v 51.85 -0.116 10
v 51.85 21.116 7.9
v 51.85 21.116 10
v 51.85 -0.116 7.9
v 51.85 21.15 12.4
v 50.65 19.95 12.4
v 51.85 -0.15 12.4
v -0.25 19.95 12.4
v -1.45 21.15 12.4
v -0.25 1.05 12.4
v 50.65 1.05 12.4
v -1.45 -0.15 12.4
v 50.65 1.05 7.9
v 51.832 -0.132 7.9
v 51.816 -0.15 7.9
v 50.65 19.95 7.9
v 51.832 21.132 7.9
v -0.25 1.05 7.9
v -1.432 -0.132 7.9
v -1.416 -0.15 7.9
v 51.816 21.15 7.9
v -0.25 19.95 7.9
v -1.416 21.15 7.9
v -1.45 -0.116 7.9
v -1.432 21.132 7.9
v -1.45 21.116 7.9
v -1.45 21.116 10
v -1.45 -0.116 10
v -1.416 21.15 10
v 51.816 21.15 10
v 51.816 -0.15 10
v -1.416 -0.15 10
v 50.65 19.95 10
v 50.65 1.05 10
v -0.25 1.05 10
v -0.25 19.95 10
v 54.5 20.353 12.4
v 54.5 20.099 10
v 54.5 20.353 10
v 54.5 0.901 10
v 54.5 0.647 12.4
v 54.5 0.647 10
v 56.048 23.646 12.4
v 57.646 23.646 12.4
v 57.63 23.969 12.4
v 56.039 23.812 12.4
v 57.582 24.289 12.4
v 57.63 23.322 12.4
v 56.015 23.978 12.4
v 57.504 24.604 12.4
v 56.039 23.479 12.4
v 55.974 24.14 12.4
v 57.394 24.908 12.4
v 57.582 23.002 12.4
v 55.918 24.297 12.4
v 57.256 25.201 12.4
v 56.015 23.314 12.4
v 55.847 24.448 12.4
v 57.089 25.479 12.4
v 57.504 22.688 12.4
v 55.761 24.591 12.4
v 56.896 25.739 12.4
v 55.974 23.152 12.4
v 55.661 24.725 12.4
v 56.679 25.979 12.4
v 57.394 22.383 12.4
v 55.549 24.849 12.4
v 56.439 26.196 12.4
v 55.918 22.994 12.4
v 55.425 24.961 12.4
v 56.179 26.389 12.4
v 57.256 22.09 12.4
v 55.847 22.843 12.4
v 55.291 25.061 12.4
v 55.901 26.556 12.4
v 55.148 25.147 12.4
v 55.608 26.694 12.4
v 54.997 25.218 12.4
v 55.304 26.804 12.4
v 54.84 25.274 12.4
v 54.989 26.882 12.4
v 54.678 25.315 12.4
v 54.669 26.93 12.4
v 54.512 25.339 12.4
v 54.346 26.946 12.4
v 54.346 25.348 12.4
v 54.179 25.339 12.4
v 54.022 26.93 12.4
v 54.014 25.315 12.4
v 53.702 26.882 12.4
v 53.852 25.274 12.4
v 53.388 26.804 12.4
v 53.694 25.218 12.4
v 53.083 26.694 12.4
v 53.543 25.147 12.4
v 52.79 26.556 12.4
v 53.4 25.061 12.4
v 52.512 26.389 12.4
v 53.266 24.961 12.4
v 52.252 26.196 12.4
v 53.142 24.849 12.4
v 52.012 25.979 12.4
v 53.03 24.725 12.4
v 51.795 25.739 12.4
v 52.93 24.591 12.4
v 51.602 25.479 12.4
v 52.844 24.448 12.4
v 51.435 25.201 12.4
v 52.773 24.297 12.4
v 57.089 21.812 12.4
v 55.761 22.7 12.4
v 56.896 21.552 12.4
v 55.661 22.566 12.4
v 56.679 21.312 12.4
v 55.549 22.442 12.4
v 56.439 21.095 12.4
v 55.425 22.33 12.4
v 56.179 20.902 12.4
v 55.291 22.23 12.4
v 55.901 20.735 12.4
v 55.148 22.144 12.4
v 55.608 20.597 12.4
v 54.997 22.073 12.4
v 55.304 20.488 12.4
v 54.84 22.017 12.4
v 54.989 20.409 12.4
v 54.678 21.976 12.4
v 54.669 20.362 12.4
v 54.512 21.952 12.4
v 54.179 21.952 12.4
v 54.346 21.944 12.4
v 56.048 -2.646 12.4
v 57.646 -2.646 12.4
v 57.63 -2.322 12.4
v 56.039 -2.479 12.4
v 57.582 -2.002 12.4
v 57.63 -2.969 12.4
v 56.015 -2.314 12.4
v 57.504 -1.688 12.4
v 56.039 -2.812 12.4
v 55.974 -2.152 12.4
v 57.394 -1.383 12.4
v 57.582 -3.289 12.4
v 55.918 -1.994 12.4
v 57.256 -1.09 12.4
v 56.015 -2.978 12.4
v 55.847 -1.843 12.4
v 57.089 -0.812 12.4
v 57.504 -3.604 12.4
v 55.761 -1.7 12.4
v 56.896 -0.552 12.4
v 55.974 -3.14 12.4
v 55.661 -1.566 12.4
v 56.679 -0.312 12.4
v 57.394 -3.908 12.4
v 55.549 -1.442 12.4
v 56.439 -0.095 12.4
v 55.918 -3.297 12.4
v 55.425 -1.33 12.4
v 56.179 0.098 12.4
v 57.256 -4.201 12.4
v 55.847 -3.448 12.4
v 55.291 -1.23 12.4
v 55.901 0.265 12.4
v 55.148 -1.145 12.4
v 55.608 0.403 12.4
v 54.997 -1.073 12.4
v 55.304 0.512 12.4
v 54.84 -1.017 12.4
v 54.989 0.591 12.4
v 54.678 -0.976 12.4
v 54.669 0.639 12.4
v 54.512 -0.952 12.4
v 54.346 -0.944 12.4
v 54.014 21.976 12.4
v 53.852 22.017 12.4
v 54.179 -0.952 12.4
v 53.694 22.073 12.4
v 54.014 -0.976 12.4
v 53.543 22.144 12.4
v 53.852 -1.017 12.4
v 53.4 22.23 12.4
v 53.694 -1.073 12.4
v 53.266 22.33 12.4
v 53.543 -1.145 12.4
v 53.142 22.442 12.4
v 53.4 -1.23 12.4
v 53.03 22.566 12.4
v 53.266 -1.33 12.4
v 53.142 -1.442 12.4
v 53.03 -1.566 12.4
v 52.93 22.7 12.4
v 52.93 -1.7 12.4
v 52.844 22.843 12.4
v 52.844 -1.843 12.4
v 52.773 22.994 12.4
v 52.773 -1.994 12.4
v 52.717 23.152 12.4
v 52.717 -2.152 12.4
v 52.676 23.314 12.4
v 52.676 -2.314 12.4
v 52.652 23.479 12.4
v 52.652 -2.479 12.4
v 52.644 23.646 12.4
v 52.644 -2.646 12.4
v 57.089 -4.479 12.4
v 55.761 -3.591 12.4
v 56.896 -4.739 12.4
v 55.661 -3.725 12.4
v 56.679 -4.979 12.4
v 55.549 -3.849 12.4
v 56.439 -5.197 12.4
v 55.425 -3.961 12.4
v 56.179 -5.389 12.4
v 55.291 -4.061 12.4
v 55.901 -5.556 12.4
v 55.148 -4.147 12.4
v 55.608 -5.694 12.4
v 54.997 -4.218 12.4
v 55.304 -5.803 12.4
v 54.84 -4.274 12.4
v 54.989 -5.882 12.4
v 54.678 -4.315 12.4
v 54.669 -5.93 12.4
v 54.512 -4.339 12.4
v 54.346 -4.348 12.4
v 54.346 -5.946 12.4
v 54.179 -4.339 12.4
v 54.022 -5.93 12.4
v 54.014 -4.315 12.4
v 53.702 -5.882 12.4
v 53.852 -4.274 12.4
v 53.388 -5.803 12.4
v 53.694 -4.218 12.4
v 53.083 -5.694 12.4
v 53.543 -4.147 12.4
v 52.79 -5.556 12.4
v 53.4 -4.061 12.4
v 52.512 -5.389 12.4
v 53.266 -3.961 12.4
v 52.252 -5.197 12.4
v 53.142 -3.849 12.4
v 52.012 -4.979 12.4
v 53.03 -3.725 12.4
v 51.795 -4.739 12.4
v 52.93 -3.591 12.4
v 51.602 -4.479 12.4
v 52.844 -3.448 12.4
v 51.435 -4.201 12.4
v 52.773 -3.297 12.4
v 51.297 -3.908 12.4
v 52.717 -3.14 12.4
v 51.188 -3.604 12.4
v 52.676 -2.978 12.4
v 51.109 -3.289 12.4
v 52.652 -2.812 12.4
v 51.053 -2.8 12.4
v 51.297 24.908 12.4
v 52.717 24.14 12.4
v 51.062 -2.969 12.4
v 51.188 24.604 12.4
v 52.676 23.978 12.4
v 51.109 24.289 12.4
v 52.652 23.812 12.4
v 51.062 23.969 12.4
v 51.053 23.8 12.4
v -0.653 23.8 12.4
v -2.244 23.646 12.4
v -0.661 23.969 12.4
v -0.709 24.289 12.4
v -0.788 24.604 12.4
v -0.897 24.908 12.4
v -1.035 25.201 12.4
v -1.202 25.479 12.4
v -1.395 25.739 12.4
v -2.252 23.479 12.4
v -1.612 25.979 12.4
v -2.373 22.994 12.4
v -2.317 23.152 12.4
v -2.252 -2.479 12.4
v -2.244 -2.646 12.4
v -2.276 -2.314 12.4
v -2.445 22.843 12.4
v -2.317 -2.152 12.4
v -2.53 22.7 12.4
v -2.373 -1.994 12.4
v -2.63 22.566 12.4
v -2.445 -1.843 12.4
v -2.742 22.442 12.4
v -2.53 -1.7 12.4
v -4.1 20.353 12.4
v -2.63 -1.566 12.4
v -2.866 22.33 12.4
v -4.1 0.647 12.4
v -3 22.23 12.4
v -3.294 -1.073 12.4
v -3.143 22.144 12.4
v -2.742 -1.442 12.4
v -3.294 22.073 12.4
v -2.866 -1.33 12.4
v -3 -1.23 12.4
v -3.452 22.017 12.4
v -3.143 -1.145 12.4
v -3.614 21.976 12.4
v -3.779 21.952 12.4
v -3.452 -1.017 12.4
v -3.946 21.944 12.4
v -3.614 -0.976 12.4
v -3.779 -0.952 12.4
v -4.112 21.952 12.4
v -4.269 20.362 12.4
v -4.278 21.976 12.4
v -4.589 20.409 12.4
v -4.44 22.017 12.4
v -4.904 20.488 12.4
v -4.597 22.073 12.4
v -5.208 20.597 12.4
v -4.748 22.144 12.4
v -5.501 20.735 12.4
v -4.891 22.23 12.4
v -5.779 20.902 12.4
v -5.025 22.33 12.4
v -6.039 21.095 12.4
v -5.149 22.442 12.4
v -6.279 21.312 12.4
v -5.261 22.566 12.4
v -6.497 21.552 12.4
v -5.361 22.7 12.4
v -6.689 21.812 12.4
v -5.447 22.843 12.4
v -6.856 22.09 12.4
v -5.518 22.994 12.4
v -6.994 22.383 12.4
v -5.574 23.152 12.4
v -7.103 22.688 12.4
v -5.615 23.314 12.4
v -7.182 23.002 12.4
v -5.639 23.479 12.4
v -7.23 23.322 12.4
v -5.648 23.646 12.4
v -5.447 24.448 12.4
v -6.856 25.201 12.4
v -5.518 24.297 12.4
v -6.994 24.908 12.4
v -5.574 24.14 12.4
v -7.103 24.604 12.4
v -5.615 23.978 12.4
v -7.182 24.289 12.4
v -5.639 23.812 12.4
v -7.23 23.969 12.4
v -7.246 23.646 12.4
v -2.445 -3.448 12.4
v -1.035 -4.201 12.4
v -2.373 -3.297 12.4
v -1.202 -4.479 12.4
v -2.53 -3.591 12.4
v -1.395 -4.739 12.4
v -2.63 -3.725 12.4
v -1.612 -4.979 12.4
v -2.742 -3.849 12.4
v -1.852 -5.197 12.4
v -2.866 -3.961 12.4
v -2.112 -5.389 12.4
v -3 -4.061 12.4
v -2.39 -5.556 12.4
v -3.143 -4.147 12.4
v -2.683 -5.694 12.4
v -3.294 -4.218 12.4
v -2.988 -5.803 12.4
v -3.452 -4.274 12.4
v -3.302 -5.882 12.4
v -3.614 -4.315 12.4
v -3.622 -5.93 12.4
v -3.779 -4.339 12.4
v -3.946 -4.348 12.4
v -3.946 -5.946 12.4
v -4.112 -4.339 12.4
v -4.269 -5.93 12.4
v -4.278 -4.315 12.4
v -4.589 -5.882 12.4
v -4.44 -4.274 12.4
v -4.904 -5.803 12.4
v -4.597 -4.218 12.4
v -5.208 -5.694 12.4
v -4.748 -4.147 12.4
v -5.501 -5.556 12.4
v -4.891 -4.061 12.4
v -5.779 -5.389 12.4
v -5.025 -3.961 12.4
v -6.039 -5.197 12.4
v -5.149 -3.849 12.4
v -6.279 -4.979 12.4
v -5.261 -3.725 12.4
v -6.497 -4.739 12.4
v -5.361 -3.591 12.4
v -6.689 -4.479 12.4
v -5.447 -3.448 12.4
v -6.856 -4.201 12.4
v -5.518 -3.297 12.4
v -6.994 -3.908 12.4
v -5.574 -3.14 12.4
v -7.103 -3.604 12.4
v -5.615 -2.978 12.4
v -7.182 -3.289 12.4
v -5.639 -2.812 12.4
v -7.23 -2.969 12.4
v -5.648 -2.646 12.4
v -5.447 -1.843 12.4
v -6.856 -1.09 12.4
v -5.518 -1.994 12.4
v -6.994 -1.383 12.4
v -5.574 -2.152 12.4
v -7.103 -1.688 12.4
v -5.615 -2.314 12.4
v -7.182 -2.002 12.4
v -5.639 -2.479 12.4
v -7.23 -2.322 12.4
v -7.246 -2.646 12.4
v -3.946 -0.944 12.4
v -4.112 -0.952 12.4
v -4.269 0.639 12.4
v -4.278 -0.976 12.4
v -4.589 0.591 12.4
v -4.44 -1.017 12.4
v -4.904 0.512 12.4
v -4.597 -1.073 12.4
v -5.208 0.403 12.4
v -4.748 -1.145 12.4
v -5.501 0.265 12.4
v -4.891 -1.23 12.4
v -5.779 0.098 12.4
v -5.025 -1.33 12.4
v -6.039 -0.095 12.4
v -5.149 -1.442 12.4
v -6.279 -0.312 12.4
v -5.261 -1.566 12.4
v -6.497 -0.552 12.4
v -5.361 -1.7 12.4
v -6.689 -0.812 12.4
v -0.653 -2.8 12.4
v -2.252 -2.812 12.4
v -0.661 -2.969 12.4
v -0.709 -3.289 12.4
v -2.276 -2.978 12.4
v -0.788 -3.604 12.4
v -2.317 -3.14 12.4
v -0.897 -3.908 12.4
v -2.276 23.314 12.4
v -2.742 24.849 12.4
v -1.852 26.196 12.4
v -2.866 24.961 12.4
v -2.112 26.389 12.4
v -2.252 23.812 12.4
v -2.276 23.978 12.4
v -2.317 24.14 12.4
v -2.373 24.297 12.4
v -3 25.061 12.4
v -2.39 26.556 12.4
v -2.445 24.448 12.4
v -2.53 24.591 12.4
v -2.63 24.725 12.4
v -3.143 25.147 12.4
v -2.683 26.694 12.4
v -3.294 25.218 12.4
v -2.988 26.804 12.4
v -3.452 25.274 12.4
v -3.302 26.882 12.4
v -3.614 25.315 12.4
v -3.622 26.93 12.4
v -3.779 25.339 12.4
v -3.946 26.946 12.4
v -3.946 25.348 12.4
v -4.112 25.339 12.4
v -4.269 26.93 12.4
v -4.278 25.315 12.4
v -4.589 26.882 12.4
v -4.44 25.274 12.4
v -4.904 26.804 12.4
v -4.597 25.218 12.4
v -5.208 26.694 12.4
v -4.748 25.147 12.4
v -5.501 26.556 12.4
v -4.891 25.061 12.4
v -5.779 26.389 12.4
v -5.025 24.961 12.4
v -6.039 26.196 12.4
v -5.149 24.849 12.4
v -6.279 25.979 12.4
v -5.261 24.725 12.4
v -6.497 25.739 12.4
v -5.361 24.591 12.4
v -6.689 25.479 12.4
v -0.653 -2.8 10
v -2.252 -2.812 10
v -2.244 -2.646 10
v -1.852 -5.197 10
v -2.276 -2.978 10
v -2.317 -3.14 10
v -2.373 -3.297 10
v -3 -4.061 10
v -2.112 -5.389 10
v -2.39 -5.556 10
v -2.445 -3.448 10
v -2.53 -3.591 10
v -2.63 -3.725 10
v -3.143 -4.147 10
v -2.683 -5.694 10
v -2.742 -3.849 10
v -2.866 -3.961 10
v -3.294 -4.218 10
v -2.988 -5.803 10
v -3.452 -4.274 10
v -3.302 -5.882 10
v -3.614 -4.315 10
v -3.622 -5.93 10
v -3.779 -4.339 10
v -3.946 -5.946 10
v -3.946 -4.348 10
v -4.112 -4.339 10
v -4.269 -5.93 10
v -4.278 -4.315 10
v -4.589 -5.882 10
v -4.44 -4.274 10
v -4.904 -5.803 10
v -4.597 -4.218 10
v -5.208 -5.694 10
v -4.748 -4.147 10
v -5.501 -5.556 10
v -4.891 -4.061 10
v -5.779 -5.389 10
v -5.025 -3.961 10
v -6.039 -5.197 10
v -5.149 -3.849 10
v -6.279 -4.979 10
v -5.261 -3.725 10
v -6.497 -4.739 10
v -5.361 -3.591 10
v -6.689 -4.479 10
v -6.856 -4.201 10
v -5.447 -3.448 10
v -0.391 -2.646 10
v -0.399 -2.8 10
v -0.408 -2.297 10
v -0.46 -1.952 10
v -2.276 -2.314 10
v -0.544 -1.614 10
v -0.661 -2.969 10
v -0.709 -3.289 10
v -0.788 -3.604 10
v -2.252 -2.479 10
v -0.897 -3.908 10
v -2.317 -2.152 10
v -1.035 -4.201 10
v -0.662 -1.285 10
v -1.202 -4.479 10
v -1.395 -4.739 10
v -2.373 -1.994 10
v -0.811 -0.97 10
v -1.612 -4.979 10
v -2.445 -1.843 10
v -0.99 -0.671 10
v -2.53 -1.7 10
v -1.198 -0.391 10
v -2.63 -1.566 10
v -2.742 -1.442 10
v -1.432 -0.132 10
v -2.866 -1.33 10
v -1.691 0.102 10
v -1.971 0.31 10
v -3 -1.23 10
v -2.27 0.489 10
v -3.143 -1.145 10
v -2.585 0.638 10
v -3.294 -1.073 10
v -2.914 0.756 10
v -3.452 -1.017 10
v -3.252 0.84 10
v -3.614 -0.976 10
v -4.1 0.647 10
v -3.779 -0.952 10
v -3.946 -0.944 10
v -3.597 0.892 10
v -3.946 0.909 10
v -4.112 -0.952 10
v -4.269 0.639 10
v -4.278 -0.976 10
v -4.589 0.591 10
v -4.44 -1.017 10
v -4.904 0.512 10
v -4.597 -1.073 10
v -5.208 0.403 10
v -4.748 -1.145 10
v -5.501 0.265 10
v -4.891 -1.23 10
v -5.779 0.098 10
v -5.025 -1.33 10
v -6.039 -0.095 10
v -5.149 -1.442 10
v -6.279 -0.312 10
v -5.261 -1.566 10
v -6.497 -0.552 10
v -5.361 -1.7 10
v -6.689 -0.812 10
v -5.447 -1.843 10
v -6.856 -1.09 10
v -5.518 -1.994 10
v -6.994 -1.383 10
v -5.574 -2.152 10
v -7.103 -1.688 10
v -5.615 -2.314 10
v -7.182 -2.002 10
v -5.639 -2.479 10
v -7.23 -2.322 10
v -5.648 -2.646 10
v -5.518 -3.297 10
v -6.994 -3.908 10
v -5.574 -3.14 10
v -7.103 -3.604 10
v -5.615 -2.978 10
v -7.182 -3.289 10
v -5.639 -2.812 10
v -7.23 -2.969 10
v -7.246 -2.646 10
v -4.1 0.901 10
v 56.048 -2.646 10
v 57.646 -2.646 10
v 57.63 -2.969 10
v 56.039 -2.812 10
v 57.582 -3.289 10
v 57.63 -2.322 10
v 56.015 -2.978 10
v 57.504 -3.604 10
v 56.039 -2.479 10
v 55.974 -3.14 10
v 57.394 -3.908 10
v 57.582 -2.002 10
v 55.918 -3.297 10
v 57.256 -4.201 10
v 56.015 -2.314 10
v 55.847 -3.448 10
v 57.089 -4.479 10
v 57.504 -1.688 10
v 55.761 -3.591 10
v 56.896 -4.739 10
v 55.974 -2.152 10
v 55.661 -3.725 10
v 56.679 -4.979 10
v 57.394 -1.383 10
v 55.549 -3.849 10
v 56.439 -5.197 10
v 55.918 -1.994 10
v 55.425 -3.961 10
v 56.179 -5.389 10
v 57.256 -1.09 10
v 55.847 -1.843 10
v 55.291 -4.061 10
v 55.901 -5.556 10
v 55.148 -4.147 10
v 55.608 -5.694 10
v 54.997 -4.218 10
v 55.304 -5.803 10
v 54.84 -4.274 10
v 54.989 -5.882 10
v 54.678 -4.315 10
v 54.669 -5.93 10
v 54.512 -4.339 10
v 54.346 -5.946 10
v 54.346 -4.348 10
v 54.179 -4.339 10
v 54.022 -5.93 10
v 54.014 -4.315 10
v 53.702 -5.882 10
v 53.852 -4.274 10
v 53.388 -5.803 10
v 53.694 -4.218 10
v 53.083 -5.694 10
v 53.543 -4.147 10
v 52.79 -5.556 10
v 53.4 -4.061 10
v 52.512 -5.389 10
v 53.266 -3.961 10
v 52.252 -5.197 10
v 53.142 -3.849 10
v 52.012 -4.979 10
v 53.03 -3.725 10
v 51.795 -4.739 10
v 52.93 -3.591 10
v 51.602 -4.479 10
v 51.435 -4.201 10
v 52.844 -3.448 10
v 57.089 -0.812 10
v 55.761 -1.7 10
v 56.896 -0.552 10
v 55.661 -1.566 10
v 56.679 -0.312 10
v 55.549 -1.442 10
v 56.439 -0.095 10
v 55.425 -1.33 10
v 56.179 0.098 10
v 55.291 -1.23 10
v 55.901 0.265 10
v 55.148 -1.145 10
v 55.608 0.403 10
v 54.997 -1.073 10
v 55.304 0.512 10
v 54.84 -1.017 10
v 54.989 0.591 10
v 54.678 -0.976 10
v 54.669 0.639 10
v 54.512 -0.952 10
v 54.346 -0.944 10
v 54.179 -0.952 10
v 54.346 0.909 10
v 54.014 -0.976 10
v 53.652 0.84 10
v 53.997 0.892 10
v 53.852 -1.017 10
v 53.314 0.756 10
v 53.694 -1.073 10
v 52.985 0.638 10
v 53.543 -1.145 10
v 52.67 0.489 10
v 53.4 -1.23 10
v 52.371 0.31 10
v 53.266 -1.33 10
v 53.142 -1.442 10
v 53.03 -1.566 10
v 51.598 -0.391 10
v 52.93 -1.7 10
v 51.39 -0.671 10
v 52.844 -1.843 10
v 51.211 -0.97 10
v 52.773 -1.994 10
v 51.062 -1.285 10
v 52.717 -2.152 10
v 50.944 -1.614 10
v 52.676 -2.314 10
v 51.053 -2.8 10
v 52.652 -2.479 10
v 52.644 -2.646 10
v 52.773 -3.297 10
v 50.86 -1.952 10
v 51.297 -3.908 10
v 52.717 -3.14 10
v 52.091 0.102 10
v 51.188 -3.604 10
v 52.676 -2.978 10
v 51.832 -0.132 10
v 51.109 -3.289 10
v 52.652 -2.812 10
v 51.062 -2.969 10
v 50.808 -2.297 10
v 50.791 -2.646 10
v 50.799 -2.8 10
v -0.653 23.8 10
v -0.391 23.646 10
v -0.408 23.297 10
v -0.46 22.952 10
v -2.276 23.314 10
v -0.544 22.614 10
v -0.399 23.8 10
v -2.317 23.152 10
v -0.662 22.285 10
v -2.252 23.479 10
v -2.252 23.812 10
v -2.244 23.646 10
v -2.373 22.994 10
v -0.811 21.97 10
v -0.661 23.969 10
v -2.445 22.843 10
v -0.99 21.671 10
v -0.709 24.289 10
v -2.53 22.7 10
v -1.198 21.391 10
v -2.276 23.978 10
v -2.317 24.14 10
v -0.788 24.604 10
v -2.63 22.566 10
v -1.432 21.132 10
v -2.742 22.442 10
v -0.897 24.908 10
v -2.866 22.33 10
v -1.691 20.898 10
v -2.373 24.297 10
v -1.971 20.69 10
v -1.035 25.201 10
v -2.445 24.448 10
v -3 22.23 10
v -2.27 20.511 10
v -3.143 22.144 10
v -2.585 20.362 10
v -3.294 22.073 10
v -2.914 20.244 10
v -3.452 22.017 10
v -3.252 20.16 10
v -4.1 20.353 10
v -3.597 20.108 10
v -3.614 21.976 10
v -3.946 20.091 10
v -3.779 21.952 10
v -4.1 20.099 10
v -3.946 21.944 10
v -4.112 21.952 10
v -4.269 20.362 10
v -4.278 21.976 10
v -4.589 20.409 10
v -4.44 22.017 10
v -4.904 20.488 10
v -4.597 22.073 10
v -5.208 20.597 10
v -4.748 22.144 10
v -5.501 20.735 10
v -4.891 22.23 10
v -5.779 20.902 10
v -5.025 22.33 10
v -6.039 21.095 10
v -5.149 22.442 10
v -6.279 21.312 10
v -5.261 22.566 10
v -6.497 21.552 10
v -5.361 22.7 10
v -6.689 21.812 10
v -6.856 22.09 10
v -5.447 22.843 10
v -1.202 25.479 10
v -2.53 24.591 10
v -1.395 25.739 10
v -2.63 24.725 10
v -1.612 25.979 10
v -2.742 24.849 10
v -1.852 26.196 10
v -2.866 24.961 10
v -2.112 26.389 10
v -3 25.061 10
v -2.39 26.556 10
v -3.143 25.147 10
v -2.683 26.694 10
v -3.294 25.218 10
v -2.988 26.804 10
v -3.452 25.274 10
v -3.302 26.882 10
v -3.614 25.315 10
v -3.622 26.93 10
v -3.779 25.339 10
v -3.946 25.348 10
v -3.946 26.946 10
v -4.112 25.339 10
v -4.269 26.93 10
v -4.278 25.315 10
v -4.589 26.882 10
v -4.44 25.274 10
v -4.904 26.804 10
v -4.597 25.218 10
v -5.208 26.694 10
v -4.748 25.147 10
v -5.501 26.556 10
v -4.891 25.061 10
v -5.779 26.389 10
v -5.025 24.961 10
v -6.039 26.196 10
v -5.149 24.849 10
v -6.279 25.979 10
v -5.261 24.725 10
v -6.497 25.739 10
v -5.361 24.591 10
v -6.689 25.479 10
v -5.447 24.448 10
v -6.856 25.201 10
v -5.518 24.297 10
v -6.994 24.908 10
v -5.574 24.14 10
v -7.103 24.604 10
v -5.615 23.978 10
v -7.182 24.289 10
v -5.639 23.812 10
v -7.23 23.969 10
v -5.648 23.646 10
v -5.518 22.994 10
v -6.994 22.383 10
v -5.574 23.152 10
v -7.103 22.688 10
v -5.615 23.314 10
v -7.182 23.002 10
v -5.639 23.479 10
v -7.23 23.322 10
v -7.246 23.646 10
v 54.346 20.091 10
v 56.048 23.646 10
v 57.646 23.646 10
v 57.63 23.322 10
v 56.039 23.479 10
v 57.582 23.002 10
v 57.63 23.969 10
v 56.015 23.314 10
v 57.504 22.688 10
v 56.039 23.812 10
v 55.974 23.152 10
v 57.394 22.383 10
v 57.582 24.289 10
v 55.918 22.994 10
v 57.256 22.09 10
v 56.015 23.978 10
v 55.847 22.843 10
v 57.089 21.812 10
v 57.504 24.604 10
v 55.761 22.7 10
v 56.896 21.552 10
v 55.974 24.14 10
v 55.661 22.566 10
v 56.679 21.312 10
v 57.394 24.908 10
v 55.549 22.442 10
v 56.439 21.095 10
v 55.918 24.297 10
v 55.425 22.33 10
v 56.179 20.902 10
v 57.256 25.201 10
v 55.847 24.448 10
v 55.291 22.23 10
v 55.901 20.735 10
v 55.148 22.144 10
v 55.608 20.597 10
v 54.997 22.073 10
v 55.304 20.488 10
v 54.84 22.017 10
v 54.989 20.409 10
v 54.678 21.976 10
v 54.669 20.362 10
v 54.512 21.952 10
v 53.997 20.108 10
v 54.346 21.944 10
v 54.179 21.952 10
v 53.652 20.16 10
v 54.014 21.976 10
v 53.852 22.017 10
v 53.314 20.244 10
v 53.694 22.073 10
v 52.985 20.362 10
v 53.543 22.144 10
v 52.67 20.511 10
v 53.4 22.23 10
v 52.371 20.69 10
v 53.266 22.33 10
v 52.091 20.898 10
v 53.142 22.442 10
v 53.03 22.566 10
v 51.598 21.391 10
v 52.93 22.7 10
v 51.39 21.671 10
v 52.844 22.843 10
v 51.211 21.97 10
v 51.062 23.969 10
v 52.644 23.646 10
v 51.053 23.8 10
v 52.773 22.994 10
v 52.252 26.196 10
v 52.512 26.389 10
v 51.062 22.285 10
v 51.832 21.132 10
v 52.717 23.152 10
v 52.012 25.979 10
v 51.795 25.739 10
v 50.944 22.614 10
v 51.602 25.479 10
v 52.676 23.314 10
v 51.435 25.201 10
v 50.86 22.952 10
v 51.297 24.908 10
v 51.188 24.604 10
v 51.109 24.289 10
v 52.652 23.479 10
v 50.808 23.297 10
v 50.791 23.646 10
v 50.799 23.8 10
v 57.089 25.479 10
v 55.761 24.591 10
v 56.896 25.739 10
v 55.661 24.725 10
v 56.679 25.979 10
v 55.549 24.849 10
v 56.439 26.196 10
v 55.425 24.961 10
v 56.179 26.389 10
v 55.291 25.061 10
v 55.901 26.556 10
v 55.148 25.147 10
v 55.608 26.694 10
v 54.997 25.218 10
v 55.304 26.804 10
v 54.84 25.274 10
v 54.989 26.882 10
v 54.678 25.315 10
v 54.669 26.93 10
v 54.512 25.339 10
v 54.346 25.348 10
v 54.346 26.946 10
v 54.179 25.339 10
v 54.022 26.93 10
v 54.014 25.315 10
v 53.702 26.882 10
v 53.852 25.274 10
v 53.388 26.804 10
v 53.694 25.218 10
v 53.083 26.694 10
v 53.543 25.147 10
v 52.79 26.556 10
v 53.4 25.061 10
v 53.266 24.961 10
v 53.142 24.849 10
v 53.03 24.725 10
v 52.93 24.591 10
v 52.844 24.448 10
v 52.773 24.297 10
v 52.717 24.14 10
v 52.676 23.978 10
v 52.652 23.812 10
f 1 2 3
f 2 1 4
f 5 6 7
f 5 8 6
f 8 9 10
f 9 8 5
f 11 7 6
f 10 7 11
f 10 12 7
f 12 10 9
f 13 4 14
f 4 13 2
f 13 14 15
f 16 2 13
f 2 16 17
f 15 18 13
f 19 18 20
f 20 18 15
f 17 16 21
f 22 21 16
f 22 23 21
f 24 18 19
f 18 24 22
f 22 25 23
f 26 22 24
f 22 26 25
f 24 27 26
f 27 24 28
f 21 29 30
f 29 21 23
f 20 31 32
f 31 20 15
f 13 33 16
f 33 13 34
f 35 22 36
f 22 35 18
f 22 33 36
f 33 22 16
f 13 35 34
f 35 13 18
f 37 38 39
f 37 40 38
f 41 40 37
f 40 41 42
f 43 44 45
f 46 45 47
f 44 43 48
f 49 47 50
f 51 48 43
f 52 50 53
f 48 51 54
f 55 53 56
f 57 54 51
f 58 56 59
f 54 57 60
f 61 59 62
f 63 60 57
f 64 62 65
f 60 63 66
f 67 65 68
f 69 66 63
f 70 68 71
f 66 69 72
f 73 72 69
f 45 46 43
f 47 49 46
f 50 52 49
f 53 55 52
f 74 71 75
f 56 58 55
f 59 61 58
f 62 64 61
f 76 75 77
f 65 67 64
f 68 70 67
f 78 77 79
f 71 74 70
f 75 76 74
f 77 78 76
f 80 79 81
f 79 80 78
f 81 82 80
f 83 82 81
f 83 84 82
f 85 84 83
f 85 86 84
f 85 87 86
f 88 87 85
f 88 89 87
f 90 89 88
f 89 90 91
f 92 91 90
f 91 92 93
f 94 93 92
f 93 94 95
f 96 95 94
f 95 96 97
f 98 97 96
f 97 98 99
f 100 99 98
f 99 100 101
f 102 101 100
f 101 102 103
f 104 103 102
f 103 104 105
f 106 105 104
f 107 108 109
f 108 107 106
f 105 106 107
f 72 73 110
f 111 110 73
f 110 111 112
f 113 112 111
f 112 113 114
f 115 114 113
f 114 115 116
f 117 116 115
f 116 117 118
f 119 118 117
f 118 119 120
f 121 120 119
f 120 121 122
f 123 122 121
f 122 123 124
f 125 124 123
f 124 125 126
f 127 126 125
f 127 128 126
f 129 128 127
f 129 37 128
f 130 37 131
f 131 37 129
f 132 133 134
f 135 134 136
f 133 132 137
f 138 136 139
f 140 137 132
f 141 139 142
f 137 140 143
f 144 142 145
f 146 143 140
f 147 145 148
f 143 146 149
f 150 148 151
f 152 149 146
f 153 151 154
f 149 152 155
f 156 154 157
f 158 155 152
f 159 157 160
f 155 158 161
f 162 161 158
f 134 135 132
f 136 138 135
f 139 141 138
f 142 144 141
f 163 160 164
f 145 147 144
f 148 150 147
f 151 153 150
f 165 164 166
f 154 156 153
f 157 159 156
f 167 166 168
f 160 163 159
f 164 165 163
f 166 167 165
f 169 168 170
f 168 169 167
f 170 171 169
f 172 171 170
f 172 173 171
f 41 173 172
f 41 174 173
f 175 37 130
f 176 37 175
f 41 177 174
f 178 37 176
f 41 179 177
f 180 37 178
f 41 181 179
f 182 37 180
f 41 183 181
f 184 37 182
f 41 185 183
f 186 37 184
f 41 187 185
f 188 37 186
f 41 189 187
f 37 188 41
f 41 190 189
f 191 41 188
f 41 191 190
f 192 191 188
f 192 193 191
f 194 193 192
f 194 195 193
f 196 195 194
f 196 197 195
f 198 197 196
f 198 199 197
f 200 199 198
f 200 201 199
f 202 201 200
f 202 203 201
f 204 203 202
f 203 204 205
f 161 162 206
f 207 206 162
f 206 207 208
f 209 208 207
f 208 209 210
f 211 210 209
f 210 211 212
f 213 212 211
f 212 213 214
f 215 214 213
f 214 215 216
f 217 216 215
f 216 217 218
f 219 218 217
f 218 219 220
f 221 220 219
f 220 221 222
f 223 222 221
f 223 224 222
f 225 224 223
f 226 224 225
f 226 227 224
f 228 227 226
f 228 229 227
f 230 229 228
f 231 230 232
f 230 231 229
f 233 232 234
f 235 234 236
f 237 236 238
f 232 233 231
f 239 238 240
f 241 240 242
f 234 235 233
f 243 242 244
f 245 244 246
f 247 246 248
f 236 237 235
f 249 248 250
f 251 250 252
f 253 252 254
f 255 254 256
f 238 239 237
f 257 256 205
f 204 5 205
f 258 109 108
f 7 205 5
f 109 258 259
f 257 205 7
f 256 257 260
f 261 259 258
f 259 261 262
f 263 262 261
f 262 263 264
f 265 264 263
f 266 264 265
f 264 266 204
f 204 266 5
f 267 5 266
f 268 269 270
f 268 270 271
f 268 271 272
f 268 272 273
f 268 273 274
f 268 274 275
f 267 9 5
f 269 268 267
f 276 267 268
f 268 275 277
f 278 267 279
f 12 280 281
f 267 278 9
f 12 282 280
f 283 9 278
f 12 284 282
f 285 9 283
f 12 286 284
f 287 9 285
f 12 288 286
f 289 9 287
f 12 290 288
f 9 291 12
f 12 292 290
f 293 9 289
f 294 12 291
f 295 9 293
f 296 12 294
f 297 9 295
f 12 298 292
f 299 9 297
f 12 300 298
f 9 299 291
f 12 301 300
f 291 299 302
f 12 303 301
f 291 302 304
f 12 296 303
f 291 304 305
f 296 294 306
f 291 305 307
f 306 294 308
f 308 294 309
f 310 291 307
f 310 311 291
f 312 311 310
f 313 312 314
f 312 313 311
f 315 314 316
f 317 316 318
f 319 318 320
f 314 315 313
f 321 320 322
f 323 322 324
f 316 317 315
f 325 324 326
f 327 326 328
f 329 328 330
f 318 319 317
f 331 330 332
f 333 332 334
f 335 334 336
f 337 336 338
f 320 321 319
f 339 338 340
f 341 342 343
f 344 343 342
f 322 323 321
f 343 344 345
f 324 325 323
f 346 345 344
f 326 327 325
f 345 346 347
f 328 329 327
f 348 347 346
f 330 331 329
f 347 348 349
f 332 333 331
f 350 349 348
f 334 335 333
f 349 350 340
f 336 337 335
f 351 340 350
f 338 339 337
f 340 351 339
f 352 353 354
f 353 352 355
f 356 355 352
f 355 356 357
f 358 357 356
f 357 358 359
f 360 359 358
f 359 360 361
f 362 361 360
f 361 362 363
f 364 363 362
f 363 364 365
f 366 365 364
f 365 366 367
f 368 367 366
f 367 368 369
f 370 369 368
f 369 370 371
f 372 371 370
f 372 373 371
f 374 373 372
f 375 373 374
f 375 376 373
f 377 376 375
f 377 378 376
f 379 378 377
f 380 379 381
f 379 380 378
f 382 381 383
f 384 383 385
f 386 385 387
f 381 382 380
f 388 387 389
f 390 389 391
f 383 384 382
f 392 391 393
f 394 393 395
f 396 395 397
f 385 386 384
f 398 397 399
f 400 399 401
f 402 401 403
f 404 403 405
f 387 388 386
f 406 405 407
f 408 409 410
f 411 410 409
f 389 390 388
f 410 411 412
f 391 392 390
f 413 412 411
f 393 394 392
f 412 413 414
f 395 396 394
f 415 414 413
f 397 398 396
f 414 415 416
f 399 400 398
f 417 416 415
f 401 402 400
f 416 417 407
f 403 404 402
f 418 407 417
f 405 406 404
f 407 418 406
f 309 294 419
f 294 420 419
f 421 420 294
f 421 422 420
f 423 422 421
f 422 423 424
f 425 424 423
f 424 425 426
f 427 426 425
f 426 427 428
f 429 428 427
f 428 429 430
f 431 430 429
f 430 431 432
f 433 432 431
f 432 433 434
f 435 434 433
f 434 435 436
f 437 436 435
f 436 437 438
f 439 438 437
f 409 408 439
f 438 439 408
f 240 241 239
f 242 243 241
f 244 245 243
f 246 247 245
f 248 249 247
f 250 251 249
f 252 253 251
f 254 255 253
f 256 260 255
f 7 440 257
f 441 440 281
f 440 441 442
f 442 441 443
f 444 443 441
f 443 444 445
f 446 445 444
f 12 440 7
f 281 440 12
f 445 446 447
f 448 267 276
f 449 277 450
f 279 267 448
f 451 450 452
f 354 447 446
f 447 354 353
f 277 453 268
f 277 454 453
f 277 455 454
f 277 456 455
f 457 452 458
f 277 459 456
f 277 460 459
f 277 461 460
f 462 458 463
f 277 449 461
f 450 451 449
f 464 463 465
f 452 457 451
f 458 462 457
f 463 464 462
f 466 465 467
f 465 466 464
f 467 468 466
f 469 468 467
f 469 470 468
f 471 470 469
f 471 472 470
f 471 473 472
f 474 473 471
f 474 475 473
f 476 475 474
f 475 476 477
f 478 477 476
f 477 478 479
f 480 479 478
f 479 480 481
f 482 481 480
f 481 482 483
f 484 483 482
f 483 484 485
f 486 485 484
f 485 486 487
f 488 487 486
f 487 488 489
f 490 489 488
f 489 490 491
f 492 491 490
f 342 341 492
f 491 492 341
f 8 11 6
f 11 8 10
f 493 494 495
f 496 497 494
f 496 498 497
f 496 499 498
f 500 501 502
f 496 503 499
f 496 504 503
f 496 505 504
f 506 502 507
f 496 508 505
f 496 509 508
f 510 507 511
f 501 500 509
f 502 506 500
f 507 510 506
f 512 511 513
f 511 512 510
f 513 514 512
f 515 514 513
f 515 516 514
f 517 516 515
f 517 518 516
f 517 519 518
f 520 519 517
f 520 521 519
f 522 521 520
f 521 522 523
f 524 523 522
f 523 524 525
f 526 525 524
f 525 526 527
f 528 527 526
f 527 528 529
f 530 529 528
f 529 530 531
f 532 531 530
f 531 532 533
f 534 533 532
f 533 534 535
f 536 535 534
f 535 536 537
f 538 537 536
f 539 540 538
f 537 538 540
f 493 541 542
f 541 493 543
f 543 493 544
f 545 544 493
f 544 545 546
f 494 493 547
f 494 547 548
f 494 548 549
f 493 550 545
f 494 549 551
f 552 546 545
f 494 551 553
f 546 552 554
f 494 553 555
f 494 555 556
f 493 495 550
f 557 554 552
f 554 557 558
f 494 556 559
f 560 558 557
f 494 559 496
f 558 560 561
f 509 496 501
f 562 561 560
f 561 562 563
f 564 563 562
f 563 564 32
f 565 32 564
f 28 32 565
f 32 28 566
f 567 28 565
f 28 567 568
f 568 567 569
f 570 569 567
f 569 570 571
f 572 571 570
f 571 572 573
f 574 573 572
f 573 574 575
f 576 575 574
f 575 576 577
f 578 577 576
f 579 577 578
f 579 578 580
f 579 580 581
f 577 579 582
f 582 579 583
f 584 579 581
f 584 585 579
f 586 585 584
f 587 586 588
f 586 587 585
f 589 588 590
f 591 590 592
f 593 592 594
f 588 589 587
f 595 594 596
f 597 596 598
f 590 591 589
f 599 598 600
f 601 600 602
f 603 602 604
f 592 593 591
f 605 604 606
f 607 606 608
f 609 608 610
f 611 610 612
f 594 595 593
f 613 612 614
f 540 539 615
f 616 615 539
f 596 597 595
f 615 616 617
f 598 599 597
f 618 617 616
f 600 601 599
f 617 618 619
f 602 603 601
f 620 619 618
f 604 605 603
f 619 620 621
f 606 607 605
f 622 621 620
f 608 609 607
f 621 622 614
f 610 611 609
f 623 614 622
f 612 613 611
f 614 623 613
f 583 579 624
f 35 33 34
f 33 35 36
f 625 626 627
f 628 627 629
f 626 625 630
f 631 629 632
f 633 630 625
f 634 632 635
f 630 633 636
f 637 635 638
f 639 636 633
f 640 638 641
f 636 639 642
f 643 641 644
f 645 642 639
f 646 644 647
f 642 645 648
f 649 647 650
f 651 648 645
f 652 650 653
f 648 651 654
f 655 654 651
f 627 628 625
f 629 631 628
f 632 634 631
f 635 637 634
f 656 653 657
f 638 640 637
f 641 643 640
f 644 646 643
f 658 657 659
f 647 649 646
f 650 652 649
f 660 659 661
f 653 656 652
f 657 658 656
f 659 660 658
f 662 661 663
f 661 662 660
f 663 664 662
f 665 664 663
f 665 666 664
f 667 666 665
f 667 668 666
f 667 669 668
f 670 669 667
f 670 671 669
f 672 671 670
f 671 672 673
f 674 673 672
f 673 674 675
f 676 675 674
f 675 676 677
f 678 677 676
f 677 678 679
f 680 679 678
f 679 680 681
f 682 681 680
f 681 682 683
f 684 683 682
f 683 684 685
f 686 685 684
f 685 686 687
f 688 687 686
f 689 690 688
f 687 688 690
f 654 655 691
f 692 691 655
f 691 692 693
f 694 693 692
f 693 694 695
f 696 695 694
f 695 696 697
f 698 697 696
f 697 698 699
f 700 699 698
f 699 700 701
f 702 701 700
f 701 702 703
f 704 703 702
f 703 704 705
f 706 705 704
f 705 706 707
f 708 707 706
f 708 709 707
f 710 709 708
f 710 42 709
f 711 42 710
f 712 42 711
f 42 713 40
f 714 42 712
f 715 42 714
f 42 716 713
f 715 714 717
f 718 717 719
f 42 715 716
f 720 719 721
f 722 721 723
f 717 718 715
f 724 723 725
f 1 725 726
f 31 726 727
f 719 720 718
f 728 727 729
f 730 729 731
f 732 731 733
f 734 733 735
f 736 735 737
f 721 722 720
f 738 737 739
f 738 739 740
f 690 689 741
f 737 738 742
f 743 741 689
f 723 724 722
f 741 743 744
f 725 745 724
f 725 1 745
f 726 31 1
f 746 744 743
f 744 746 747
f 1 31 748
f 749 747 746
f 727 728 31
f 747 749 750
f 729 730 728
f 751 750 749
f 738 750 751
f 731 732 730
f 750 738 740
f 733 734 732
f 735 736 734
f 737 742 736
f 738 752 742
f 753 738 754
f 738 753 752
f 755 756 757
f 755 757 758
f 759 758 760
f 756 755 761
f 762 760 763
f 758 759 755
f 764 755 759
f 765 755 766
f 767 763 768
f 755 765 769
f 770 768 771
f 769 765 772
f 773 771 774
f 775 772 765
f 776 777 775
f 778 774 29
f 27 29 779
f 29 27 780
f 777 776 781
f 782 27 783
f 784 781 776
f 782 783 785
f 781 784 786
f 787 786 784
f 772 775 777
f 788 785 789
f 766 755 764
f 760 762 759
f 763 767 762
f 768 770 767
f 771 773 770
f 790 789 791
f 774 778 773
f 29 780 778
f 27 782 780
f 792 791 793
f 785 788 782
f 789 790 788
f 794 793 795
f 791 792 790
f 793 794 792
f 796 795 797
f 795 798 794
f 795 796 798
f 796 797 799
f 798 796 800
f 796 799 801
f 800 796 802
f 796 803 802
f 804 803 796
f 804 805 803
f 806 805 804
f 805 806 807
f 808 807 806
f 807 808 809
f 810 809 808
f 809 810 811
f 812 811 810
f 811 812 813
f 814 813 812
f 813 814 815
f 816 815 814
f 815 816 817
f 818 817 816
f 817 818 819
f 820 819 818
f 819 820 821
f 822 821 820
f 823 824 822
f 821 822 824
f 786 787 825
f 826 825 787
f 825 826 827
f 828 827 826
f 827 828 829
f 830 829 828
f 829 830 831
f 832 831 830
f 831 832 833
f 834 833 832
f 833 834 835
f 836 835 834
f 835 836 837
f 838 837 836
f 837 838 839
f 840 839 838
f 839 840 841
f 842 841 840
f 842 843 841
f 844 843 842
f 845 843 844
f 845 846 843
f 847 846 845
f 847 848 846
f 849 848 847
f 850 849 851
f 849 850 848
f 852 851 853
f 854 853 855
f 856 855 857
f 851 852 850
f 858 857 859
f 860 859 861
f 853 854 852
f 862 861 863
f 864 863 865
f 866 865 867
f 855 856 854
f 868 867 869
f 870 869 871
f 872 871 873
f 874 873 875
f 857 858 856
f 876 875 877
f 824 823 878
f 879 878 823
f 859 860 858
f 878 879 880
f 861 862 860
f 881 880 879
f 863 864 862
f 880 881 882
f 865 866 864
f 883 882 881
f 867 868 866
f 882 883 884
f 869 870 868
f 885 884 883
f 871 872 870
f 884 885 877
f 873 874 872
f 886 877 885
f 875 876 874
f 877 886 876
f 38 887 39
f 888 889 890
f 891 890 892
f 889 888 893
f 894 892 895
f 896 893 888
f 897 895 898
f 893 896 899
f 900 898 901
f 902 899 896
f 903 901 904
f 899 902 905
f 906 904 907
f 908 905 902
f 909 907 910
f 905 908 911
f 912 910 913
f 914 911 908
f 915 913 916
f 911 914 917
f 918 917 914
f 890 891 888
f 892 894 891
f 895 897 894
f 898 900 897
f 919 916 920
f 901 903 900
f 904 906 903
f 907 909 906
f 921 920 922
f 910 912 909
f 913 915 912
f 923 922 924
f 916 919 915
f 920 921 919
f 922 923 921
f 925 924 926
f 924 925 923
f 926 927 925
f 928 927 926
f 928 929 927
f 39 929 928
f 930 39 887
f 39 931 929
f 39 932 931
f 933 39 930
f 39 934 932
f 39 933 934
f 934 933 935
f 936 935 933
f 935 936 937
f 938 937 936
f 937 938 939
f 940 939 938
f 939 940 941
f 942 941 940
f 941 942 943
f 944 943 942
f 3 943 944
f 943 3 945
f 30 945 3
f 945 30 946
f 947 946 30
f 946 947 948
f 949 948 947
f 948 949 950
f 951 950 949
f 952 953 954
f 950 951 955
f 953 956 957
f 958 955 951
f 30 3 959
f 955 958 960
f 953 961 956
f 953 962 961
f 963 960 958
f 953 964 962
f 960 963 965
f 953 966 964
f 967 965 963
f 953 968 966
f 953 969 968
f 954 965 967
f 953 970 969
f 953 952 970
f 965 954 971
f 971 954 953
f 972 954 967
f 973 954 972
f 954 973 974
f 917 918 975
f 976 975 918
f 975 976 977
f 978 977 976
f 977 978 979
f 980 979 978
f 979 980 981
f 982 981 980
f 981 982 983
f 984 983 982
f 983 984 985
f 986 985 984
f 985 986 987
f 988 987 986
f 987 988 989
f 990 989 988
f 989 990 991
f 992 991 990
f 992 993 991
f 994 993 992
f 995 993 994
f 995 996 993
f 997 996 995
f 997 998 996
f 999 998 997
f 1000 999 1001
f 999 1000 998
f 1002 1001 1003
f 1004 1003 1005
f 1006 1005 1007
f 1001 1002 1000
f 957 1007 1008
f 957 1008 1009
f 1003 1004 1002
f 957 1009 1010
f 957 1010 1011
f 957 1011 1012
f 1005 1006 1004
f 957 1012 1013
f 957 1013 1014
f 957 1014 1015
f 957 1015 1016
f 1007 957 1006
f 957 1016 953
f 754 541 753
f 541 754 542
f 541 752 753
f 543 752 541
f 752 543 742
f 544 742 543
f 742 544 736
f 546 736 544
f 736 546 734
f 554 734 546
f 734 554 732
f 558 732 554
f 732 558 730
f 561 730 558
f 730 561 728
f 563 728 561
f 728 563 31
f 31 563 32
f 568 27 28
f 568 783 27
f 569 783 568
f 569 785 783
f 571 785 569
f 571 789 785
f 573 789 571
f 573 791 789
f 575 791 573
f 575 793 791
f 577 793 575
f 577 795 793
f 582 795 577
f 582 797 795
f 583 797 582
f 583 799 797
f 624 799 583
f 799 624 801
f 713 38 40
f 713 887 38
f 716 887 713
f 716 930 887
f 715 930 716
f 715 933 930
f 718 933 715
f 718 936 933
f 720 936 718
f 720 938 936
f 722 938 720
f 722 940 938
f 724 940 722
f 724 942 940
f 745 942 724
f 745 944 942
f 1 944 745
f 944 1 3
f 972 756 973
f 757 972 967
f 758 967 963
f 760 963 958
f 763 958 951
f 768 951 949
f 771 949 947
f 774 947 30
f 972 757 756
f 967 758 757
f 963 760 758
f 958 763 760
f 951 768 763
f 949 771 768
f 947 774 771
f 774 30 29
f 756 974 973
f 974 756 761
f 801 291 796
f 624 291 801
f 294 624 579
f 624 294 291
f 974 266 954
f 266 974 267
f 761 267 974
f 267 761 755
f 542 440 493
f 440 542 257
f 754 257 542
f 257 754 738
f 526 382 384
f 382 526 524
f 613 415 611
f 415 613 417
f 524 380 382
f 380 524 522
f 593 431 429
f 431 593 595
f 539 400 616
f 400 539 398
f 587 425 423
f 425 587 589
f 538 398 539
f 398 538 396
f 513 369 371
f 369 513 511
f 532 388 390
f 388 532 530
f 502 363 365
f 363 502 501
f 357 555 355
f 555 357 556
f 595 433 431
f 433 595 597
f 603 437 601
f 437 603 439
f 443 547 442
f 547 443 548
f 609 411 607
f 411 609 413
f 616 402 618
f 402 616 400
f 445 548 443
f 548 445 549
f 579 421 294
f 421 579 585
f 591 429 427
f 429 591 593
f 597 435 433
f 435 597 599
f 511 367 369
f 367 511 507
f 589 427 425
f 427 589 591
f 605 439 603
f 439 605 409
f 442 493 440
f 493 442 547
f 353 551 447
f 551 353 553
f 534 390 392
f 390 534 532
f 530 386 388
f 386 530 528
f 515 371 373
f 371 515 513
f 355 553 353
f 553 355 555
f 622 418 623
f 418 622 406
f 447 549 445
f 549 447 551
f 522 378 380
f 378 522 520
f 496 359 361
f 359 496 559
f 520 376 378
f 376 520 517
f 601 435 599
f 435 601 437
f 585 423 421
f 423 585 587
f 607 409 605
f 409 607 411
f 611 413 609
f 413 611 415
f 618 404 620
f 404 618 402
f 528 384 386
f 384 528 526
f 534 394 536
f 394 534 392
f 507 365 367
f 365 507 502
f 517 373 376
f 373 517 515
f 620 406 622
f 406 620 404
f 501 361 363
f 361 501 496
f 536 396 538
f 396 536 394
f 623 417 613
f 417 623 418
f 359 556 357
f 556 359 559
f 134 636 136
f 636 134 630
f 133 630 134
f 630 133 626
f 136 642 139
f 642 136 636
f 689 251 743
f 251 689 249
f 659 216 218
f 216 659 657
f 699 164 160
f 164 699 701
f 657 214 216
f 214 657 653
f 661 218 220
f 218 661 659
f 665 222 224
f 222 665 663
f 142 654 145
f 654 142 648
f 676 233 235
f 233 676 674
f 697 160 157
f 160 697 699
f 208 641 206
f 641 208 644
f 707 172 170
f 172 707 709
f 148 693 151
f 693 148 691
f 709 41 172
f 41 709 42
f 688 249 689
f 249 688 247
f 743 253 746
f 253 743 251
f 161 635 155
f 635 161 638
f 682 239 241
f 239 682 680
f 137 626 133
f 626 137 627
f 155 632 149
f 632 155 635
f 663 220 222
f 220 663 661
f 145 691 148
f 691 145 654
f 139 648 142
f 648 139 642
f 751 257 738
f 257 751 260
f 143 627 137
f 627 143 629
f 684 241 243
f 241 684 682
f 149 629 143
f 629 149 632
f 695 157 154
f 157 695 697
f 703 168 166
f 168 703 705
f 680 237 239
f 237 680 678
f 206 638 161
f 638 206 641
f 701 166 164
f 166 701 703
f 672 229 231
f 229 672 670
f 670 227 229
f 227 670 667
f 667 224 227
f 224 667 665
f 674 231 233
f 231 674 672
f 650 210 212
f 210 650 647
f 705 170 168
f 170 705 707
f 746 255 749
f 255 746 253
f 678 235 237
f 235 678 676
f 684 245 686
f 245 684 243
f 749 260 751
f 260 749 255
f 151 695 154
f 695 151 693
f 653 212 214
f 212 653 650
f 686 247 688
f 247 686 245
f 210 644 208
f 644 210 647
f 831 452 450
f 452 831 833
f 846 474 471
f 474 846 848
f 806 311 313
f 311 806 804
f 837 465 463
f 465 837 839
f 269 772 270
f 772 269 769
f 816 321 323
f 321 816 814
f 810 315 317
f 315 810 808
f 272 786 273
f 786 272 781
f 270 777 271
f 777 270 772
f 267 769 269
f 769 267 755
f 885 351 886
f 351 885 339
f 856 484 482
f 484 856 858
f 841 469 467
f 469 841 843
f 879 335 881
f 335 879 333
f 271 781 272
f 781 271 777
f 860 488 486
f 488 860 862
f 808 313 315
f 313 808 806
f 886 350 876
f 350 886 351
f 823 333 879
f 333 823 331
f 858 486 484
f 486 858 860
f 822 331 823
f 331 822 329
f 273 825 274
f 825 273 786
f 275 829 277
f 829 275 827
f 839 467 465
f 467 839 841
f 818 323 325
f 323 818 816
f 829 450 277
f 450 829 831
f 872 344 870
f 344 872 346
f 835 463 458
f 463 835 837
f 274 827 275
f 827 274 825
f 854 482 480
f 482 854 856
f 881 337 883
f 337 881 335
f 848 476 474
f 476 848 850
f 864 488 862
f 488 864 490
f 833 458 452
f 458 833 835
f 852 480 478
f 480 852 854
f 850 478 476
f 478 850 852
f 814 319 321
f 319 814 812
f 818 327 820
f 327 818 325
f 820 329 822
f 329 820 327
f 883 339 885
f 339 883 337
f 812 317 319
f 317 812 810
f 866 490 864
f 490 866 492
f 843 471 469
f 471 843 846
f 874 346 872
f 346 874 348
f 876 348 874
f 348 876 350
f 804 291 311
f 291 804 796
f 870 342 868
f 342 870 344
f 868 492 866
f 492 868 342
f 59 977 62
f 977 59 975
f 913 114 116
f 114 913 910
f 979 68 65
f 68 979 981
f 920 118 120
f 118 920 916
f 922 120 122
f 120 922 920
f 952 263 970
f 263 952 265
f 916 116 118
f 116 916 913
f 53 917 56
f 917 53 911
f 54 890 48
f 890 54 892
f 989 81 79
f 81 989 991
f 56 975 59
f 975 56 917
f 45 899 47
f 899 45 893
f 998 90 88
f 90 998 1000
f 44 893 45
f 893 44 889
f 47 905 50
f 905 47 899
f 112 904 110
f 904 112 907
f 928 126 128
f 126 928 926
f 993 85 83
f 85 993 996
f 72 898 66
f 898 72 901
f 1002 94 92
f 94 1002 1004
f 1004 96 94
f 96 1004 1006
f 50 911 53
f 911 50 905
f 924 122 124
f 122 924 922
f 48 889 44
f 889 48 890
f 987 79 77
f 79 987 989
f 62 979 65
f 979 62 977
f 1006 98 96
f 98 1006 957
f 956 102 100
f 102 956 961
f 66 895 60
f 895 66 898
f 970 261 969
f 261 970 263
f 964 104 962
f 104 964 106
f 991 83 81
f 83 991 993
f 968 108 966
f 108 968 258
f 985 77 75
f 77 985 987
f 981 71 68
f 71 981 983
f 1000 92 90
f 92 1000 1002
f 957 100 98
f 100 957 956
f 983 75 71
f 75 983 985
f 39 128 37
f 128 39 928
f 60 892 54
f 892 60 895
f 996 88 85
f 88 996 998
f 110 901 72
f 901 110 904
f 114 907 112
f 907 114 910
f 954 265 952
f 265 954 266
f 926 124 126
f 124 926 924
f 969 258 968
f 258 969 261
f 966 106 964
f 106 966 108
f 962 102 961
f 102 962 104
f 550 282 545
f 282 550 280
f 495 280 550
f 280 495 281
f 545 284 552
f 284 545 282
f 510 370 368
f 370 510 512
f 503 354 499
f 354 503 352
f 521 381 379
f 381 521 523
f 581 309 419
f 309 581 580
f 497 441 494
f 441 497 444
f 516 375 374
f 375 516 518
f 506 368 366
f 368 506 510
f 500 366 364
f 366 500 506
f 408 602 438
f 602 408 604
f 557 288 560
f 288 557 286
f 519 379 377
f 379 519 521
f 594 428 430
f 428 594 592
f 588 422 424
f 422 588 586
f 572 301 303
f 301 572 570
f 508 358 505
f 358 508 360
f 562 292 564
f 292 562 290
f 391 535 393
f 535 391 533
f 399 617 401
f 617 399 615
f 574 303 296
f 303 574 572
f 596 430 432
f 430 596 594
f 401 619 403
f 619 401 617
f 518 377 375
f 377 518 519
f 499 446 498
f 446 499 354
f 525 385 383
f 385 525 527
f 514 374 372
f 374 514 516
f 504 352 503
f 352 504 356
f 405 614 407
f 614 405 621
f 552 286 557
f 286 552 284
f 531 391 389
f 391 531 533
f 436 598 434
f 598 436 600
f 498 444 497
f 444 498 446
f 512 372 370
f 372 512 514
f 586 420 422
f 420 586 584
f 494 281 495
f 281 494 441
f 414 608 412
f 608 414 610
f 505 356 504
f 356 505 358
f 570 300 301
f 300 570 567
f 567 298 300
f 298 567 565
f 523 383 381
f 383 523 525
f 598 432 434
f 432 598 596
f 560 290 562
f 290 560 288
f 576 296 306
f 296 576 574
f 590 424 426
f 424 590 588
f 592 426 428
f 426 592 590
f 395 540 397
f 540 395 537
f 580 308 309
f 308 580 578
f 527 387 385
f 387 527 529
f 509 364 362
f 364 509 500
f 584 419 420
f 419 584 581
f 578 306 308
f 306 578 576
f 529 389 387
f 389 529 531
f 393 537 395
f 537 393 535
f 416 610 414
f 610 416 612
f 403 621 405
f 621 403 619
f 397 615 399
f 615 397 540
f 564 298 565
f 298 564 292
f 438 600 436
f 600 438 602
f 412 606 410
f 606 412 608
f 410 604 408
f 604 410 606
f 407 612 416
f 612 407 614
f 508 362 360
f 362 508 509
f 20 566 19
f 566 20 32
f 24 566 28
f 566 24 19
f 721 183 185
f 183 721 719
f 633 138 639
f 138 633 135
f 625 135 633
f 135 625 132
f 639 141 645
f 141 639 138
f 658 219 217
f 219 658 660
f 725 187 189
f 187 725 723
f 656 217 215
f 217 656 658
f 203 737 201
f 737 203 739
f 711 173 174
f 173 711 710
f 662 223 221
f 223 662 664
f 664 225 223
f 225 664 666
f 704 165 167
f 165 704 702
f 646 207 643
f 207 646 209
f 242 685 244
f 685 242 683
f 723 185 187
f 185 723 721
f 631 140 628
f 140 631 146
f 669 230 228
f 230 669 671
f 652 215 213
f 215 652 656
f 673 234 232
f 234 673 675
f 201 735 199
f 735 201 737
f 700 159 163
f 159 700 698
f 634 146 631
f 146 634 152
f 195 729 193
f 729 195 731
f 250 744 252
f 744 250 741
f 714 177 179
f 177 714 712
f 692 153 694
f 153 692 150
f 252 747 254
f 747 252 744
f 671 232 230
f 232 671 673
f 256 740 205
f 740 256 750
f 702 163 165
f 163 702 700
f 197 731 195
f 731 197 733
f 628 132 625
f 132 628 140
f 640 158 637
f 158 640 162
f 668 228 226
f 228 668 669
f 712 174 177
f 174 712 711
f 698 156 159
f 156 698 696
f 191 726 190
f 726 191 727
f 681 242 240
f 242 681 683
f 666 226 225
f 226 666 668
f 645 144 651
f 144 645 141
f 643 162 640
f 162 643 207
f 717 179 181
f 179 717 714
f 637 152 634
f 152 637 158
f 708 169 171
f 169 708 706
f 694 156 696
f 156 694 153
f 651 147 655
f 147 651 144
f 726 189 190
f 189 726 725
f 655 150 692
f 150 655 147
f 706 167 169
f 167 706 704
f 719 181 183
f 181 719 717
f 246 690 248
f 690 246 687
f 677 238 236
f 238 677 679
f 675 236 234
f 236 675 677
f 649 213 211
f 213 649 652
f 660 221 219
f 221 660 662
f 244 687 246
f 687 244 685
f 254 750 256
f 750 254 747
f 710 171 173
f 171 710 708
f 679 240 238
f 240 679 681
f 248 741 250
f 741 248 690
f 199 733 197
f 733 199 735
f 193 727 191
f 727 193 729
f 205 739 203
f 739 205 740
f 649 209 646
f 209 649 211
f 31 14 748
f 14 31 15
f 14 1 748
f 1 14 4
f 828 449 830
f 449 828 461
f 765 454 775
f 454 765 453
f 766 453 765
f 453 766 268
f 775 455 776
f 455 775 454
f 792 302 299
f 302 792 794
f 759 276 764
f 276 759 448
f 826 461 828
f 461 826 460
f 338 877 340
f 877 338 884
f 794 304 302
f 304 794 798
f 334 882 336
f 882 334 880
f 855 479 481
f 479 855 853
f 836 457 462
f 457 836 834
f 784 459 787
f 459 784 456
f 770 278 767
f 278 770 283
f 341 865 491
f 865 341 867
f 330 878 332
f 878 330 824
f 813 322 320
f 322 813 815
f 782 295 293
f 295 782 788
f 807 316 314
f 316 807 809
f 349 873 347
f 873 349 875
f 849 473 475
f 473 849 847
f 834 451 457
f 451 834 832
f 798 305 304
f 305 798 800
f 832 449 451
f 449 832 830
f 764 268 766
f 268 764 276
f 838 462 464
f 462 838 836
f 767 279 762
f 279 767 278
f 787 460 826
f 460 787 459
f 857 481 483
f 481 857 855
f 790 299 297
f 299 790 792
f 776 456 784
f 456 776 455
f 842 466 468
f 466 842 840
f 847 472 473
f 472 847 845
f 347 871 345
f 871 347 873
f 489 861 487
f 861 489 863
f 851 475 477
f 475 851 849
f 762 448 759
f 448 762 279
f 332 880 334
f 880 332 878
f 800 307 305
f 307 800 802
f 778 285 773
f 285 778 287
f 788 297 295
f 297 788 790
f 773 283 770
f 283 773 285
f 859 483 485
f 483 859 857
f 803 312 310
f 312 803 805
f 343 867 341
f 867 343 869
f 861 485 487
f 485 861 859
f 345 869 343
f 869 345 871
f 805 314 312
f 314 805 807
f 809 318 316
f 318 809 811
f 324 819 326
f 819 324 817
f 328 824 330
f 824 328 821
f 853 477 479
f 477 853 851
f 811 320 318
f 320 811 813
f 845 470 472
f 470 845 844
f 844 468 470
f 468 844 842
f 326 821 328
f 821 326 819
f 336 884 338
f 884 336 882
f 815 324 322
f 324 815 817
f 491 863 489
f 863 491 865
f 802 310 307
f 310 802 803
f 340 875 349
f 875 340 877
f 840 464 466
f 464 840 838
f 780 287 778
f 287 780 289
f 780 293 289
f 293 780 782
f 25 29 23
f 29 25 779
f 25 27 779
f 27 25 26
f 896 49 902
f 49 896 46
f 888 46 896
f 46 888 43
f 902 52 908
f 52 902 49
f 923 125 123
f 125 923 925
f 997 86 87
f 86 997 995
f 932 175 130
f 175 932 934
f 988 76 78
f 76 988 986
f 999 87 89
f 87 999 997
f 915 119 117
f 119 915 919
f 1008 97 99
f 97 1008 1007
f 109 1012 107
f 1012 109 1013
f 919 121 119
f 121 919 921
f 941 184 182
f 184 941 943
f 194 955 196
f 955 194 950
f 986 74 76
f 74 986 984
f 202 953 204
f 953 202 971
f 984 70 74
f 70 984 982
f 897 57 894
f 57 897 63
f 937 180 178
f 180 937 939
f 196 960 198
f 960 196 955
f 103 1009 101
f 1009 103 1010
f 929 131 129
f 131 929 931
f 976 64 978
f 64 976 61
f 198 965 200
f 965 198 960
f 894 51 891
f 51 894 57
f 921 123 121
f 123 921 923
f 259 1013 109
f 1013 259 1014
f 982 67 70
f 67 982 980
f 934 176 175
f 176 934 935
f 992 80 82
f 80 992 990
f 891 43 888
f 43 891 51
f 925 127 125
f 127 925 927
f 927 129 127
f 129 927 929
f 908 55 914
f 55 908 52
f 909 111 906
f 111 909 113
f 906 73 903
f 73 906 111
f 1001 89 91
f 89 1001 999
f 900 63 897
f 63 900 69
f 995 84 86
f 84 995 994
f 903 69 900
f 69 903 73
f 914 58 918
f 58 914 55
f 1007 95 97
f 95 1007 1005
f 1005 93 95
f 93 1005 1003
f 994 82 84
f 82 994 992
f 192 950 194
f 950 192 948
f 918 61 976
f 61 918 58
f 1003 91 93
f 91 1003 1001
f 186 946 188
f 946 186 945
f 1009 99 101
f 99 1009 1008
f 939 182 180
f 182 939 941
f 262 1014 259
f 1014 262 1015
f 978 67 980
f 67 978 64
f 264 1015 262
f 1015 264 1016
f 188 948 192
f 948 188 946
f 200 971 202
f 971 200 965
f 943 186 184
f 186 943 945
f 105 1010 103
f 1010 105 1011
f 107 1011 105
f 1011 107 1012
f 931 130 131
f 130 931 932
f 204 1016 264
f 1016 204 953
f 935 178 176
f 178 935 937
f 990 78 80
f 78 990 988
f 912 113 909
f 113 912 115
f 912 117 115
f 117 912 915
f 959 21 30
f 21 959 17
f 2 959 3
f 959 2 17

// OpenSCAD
// body lid
difference() {
  union() {
    // body lid (lid_plate)
    multmatrix([[1, 0, 0, 25.2], [0, 1, 0, 10.5], [0, 0, 1, 10], [0, 0, 0, 1]]) translate([-29.3, -13.3, 0]) cube([58.6, 26.6, 2.4]);
    // add lid_lip (lip)
    multmatrix([[1, 0, 0, 25.2], [0, 1, 0, 10.5], [0, 0, 1, 7.9], [0, 0, 0, 1]]) difference() { translate([-26.65, -10.65, 0]) cube([53.3, 21.3, 4.5]); translate([0, 0, -1]) translate([-25.45, -9.45, 0]) cube([50.9, 18.9, 6.5]); }
    // add boss_1_pad (pad)
    multmatrix([[1, 0, 0, -3.945584], [0, 1, 0, -2.645584], [0, 0, 1, 10], [0, 0, 0, 1]]) cylinder(h=2.4, d=6.6, $fn=64);
    // add boss_2_pad (pad)
    multmatrix([[1, 0, 0, 54.345584], [0, 1, 0, -2.645584], [0, 0, 1, 10], [0, 0, 0, 1]]) cylinder(h=2.4, d=6.6, $fn=64);
    // add boss_3_pad (pad)
    multmatrix([[1, 0, 0, -3.945584], [0, 1, 0, 23.645584], [0, 0, 1, 10], [0, 0, 0, 1]]) cylinder(h=2.4, d=6.6, $fn=64);
    // add boss_4_pad (pad)
    multmatrix([[1, 0, 0, 54.345584], [0, 1, 0, 23.645584], [0, 0, 1, 10], [0, 0, 0, 1]]) cylinder(h=2.4, d=6.6, $fn=64);
  }
  // cut boss_1_lid_hole (screw_hole)
  multmatrix([[1, 0, 0, -3.945584], [0, 1, 0, -2.645584], [0, 0, 1, 9], [0, 0, 0, 1]]) cylinder(h=4.4, d=3.4041, $fn=64);
  // cut boss_1_lip_notch (lip_notch)
  multmatrix([[1, 0, 0, -3.945584], [0, 1, 0, -2.645584], [0, 0, 1, 6.9], [0, 0, 0, 1]]) cylinder(h=3.1, d=7.108563, $fn=64);
  // cut boss_2_lid_hole (screw_hole)
  multmatrix([[1, 0, 0, 54.345584], [0, 1, 0, -2.645584], [0, 0, 1, 9], [0, 0, 0, 1]]) cylinder(h=4.4, d=3.4041, $fn=64);
  // cut boss_2_lip_notch (lip_notch)
  multmatrix([[1, 0, 0, 54.345584], [0, 1, 0, -2.645584], [0, 0, 1, 6.9], [0, 0, 0, 1]]) cylinder(h=3.1, d=7.108563, $fn=64);
  // cut boss_3_lid_hole (screw_hole)
  multmatrix([[1, 0, 0, -3.945584], [0, 1, 0, 23.645584], [0, 0, 1, 9], [0, 0, 0, 1]]) cylinder(h=4.4, d=3.4041, $fn=64);
  // cut boss_3_lip_notch (lip_notch)
  multmatrix([[1, 0, 0, -3.945584], [0, 1, 0, 23.645584], [0, 0, 1, 6.9], [0, 0, 0, 1]]) cylinder(h=3.1, d=7.108563, $fn=64);
  // cut boss_4_lid_hole (screw_hole)
  multmatrix([[1, 0, 0, 54.345584], [0, 1, 0, 23.645584], [0, 0, 1, 9], [0, 0, 0, 1]]) cylinder(h=4.4, d=3.4041, $fn=64);
  // cut boss_4_lip_notch (lip_notch)
  multmatrix([[1, 0, 0, 54.345584], [0, 1, 0, 23.645584], [0, 0, 1, 6.9], [0, 0, 0, 1]]) cylinder(h=3.1, d=7.108563, $fn=64);
}
